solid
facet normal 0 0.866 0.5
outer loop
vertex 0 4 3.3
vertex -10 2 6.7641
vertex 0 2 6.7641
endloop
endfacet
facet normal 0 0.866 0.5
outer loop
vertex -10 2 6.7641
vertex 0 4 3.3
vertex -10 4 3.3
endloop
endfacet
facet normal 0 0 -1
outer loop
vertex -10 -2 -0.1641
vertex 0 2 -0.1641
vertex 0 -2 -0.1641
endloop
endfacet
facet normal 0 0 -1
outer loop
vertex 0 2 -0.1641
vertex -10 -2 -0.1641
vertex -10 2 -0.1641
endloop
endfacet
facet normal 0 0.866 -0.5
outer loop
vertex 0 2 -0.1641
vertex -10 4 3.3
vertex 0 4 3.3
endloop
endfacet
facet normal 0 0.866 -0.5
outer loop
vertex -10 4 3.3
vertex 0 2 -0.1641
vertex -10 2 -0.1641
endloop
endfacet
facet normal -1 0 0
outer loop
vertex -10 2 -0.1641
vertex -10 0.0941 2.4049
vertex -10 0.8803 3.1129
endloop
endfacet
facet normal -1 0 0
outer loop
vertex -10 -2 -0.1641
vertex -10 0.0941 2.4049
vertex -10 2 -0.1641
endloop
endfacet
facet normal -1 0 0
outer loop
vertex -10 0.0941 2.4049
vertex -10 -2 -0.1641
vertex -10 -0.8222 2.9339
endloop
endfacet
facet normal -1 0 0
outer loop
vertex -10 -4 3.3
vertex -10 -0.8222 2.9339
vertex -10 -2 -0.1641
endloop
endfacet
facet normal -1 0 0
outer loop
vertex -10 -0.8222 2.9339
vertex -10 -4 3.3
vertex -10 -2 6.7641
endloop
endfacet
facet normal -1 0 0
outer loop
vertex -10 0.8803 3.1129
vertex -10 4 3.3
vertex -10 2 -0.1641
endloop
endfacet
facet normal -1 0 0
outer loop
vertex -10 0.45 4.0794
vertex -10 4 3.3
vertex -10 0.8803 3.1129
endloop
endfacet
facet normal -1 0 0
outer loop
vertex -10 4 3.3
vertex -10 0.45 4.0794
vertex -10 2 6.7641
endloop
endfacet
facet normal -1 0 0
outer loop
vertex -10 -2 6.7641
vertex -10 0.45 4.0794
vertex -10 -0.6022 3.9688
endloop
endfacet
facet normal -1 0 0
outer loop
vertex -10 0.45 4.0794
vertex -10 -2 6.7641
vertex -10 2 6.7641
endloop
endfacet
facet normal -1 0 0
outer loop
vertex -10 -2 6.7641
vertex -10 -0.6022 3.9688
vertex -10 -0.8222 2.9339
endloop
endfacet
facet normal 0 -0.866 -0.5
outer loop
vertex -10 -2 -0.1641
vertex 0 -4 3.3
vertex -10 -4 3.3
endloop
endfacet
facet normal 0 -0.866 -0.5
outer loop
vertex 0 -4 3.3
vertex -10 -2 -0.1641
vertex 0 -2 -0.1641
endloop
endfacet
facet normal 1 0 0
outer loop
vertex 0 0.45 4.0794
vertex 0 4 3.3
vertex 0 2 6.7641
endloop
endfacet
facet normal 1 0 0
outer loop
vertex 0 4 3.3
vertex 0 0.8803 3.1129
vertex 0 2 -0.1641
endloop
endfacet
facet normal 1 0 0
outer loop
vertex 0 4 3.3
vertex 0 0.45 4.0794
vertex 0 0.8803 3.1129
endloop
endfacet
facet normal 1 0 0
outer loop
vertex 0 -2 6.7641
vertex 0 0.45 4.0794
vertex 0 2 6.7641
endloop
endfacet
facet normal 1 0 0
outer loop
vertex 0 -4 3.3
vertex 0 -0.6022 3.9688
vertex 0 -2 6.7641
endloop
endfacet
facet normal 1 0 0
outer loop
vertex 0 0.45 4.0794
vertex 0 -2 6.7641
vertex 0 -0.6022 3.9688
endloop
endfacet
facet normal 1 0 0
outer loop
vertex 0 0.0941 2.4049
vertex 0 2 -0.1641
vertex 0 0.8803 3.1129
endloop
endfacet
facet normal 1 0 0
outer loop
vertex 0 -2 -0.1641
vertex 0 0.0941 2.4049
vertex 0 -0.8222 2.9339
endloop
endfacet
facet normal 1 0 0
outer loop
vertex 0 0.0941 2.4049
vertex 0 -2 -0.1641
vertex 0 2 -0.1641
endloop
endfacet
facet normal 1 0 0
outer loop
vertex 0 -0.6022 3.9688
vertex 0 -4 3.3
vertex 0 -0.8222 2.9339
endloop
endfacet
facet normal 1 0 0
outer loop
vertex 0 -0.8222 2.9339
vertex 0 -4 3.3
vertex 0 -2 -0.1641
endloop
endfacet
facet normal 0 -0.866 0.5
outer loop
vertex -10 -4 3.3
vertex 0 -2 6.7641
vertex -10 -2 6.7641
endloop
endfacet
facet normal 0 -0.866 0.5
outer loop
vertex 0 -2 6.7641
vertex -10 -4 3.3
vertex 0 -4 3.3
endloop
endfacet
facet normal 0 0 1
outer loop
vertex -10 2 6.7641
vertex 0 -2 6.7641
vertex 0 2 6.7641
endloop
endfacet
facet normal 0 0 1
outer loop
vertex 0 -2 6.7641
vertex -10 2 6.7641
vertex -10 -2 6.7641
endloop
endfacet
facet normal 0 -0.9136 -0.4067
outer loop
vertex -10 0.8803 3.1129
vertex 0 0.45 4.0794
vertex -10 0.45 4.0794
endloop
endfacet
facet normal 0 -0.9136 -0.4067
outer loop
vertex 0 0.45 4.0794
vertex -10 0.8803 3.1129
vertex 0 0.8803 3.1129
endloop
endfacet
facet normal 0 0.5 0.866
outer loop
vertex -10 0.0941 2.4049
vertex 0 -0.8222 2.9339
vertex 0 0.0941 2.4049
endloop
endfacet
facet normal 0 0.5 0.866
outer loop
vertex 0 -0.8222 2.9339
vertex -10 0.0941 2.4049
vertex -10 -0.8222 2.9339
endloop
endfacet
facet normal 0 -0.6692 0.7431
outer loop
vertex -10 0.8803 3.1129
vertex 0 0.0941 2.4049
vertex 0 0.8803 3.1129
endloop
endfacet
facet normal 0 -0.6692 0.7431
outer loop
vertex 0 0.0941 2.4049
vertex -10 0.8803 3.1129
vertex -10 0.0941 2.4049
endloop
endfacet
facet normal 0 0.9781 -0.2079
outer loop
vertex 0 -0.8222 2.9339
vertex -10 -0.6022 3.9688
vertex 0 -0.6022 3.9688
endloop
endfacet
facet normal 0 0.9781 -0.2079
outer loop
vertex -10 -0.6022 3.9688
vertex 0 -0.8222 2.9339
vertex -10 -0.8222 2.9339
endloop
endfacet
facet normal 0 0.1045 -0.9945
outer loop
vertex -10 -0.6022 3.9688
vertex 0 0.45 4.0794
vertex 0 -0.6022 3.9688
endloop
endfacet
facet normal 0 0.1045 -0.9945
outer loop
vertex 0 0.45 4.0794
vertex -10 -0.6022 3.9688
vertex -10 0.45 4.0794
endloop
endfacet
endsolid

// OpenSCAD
// file: ModuleKatzenklappe.scad
// //////////////////////////////////
// Module für Katzenklappenverschluss
// //////////////////////////////////

module armHorn (laenge, breite, dicke) {
    difference() {
    union() {
    translate ([0,-breite/2,0])
    cube([laenge,breite,dicke], false);
    translate ([laenge,0,0])
    cylinder(dicke,r=breite/2, false); 
    }
    translate ([laenge*1.0,0,0])
    loch(radius=2,tiefe= dicke + 1);
/*    translate ([laenge*0.6,0,dicke-1])
    letter("Achim");
    translate ([laenge*0.6,0,1])
    rotate([0,180,0])
    letter("Tim");
    translate ([laenge*0.2,0,0])
    loch(radius=2,tiefe= dicke + 1);
*/    }
};

module mittelRad (breite) {
    difference() {
        cylinder(breite,r=12.5, false);
        cylinder(breite,r=2.0, false);
        
/*        translate([0,0,breite])
        gear (
            toothNo = 100, 
            toothWidth = 1, 
            toothHeight  = 2, 
            thickness = breite,
            holeRadius = 5,
            holeSides = 6
        );
        translate ([-25,0,0])
        loch(radius=5,tiefe=breite + 1);
        translate ([25,0,0])
        loch(radius=5,tiefe=breite + 1);
        translate ([0,-25,0])
        loch(radius=5,tiefe=breite + 1);
        translate ([0,25,0])
        loch(radius=5,tiefe=breite + 1);
*/        } 
};

module loch (radius, tiefe) {
        cylinder(tiefe,r=radius, false);   
};

module zapfen (breite,tiefe) {
        cube([breite,breite,tiefe], true);   
};

module wand (breite) {
    difference() {
        cube([breite,120,5], false);  
        translate ([5,5,0])
        cube([breite/3-10,110,5], false);  
        translate ([breite/3+5,5,0])
        cube([breite/3-10,110,5], false);  
        translate ([2*breite/3+5,5,0])
        cube([breite/3-10,110,5], false);  
    } 
};

module lArm(laenge, breite, dicke) {
    difference() {
        union() {
            armHorn(laenge=laenge, breite=breite, dicke=dicke);
            rotate(90) armHorn(laenge=laenge, breite=breite, dicke=dicke);
            cylinder(dicke,r=breite/2, false); 
           }
            translate ([0,0,0])
            zapfen(breite= 3, tiefe = dicke * 2);
        }
};

module mittelAchse(laenge, radius_achse, zapfen_breite, zapfen_laenge, breite) {
    difference() {
        union() {
            translate ([0,0,zapfen_laenge /2])
            zapfen(breite= zapfen_breite, tiefe=zapfen_laenge);   
            translate ([0,0,zapfen_laenge])
            cylinder(laenge,r = radius_achse, false, $fn=6);
            translate ([0,0,laenge+(1.5*zapfen_laenge)])
            zapfen(breite= zapfen_breite, tiefe=zapfen_laenge);   
        }
        cylinder (laenge+6,r=0.9, false);
    }
};

module achse(laenge, radius_achse) {
    difference() {
        cylinder(laenge,r = radius_achse, false, $fn=6);
        cylinder (laenge+6,r=0.9, false);
    }
};


module tooth(width, thickness, height){
  scale([width/5,thickness/5,height/10]){
    difference(){
      translate([-2.5,0,0])
      cube([5,5,10]);
      translate([5+1.25-2.5,0-1,0])
      rotate([0,-14.0362434,0])
        cube([5,5+2,12]);
      translate([0-1.25-2.5,0+5+1,0])
      rotate([0,-14.0362434,180])
        cube([5,5+2,12]);
    }
  }
}
module gear(toothNo, toothWidth, toothHeight, thickness,holeRadius,holeSides){
  radius = (toothWidth*1.7*toothNo)/3.141592653589793238/2;
  rotate([-90,0,0])
  difference(){
    union(){
      for(i=[0:toothNo]){
        rotate([0,(360/toothNo)*i,0])
        translate([0,0,radius-0.5])
          tooth(toothWidth,thickness,toothHeight);
      }
      translate([0,thickness,0])
      rotate([90,0,0])
        cylinder(r=radius, h=thickness);
    }
  translate([0,thickness+1,0])
  rotate([90,0,0])
    cylinder(r=holeRadius,h=thickness+2,$fn=holeSides);
  }
}

font = "Liberation Sans";


letter_size = 5;
letter_height = 3;


module letter(l) {
  // Use linear_extrude() to make the letters 3D objects as they
  // are only 2D shapes when only using text()
  linear_extrude(height = letter_height) {
    text(l, size = letter_size, font = font, halign = "center", valign = "center", $fn = 16);
  }
}


module 9g_motor(){
	difference(){			
		union(){
			color("SteelBlue") cube([23,12.5,22], center=true);
			color("SteelBlue") translate([0,0,5]) cube([32,12,2], center=true);
			color("SteelBlue") translate([5.5,0,2.75]) cylinder(r=6, h=25.75, $fn=20, center=true);
			color("SteelBlue") translate([-.5,0,2.75]) cylinder(r=1, h=25.75, $fn=20, center=true);
			color("SteelBlue") translate([-1,0,2.75]) cube([5,5.6,24.5], center=true);		
			color("white") translate([5.5,0,3.65]) cylinder(r=2.35, h=29.25, $fn=20, center=true);				
		}
		translate([10,0,-11]) rotate([0,-30,0]) cube([8,13,4], center=true);
		for ( hole = [14,-14] ){
			translate([hole,0,5]) cylinder(r=2.2, h=4, $fn=20, center=true);
		}	
	}
}

module sg90() {
	color("blue") difference() {
		union() {
			translate([0,0,22.5/2]) cube([22.5,12.2,22.5], center=true);
			translate([0,0,16.75]) cube([32.2,12.2,2], center=true);

			translate([0,0,22.5-1]) {
				hull() {
					translate([-1,0,0]) cylinder(d=5.5, h=4+1);
					translate([1,0,0]) cylinder(d=5.5, h=4+1);
				}

				translate([5.5,0,0]) cylinder(d=11.6, h=4+1);
			}

		}	

		translate([-32.5/2+2,0,16.75-2]) {
			cylinder(d=2, h=2+2);
			translate([-2,0,2]) cube([4,1,2+2], center=true);
		}
		translate([32.5/2-2,0,16.75-2]) {
			cylinder(d=2, h=2+2);
			translate([2,0,2]) cube([4,1,2+2], center=true);
		}
	}
	color("white") translate([5.5,0,22.5-1+4]) {
		difference() {
			cylinder(d=4.8, h=3+1);
			translate([0,0,1]) cylinder(d=2, h=4);
		}
	}
}

module stuetze (hoehe) {
    difference() {
        translate ([0,0,0])
        cube([hoehe,20,3], false);
        translate ([hoehe*0.8,10,0])
        cylinder(21,r=1.5, center=true);
        translate ([hoehe*0.7,10,0])
        cylinder(21,r=1.5, center=true);
        translate ([hoehe*0.6,10,0])
        cylinder(21,r=1.5, center=true);
        translate ([hoehe*0.5,10,0])
        cylinder(21,r=1.5, center=true);
    }
}

module balken (laenge) {
    difference() {
        translate ([0,-10,0])
        cube([5,laenge,3], false);
    }
/*    translate ([2.5,25,2.5])
        rotate(-90,90,0)
        letter("Design by Achim & Tim 2018");    
*/
}

module boden(laenge, breite) {
    difference() {
        cube([5,laenge,breite], false);
        rotate([0,90,0])
        translate ([-breite/2,laenge*0.1,0])
        cylinder(6,r=1.5, center=false);
        rotate([0,90,0])
        translate ([-breite/2,laenge*0.5,0])
        cylinder(6,r=1.5, center=false);
        rotate([0,90,0])
        translate ([-breite/2,laenge*0.9,0])
        cylinder(6,r=1.5, center=false);
    }
}

module wand(hoehe, anzahl, abstand) {
    for (a =[0:abstand:anzahl*abstand])
        translate ([0,a,0])
        stuetze(hoehe);
    translate ([0,10,0])
    balken(anzahl*abstand);
    translate ([hoehe-5,10,0])
    balken(anzahl*abstand);
}

module halterung(hoehe) {
    // Bodenplatte
    cube([5,22,36],false);
    difference(){
        // Motorhalterung
        cube([hoehe,22,15.5],false);
        translate ([hoehe-5,10,11])
        cylinder(6,r=0.5, center=false);
        translate ([10,10,11])
        cylinder(6,r=0.5, center=false);
    }
}
// main file
include <ModuleKatzenklappe.scad>;
include <gears.scad>;

zahnradabstand = 25;
gehaeusehoehe = 45;

// Maße eines L-Arms
lArmBreite  = 10;
lArmLaenge  = 18;
lArmDicke   = 3;

// Maße der Mittelachse
mittelAchseLaenge       = 21;
mittelAchseRadius       = 4;
mittelAchseZapfenBreite = 2.6;
mittelAchseZapfenLaenge = 3;
mittelAchseRadBreite    = 5;

// Zahnrad 3 mit 6-kantlock

/*
difference() {
    translate ([0,70,0])
    rotate([0,0,1/56*360])
    gear (number_of_teeth=28,
			circular_pitch=109.8,
            hub_diameter=7,
            bore_diameter=1.8,
			rim_width=2,
			rim_thickness=4,
			gear_thickness=4,
			hub_thickness=4,
			circles=0);
    translate ([0,70,-10])
    scale (1.01) mittelAchse(laenge = mittelAchseLaenge, radius_achse =     mittelAchseRadius, zapfen_breite = mittelAchseZapfenBreite, zapfen_laenge = mittelAchseZapfenLaenge, breite = mittelAchseRadBreite);
    translate ([0,70,-10])
    cylinder(20,r=2,true);
}



// Verschluss
translate([0,0,0])
// Verschlussriegel unten
lArm(laenge=lArmLaenge,breite=lArmBreite,dicke=lArmDicke);

translate([0,0,0])
// Mittelachse
mittelAchse(laenge = mittelAchseLaenge, radius_achse = mittelAchseRadius, zapfen_breite = mittelAchseZapfenBreite, zapfen_laenge = mittelAchseZapfenLaenge, breite = mittelAchseRadBreite);

   
// Verschlussriegel oben
//        translate ([0,0,mittelAchseLaenge+lArmDicke])
rotate(-90) lArm(laenge=lArmLaenge,breite=lArmBreite,dicke=lArmDicke);
*/
translate ([0,0,3.3])
rotate([0,-90,0]) 
rotate([0,0,30]) 
achse(laenge = 10, radius_achse = mittelAchseRadius);
